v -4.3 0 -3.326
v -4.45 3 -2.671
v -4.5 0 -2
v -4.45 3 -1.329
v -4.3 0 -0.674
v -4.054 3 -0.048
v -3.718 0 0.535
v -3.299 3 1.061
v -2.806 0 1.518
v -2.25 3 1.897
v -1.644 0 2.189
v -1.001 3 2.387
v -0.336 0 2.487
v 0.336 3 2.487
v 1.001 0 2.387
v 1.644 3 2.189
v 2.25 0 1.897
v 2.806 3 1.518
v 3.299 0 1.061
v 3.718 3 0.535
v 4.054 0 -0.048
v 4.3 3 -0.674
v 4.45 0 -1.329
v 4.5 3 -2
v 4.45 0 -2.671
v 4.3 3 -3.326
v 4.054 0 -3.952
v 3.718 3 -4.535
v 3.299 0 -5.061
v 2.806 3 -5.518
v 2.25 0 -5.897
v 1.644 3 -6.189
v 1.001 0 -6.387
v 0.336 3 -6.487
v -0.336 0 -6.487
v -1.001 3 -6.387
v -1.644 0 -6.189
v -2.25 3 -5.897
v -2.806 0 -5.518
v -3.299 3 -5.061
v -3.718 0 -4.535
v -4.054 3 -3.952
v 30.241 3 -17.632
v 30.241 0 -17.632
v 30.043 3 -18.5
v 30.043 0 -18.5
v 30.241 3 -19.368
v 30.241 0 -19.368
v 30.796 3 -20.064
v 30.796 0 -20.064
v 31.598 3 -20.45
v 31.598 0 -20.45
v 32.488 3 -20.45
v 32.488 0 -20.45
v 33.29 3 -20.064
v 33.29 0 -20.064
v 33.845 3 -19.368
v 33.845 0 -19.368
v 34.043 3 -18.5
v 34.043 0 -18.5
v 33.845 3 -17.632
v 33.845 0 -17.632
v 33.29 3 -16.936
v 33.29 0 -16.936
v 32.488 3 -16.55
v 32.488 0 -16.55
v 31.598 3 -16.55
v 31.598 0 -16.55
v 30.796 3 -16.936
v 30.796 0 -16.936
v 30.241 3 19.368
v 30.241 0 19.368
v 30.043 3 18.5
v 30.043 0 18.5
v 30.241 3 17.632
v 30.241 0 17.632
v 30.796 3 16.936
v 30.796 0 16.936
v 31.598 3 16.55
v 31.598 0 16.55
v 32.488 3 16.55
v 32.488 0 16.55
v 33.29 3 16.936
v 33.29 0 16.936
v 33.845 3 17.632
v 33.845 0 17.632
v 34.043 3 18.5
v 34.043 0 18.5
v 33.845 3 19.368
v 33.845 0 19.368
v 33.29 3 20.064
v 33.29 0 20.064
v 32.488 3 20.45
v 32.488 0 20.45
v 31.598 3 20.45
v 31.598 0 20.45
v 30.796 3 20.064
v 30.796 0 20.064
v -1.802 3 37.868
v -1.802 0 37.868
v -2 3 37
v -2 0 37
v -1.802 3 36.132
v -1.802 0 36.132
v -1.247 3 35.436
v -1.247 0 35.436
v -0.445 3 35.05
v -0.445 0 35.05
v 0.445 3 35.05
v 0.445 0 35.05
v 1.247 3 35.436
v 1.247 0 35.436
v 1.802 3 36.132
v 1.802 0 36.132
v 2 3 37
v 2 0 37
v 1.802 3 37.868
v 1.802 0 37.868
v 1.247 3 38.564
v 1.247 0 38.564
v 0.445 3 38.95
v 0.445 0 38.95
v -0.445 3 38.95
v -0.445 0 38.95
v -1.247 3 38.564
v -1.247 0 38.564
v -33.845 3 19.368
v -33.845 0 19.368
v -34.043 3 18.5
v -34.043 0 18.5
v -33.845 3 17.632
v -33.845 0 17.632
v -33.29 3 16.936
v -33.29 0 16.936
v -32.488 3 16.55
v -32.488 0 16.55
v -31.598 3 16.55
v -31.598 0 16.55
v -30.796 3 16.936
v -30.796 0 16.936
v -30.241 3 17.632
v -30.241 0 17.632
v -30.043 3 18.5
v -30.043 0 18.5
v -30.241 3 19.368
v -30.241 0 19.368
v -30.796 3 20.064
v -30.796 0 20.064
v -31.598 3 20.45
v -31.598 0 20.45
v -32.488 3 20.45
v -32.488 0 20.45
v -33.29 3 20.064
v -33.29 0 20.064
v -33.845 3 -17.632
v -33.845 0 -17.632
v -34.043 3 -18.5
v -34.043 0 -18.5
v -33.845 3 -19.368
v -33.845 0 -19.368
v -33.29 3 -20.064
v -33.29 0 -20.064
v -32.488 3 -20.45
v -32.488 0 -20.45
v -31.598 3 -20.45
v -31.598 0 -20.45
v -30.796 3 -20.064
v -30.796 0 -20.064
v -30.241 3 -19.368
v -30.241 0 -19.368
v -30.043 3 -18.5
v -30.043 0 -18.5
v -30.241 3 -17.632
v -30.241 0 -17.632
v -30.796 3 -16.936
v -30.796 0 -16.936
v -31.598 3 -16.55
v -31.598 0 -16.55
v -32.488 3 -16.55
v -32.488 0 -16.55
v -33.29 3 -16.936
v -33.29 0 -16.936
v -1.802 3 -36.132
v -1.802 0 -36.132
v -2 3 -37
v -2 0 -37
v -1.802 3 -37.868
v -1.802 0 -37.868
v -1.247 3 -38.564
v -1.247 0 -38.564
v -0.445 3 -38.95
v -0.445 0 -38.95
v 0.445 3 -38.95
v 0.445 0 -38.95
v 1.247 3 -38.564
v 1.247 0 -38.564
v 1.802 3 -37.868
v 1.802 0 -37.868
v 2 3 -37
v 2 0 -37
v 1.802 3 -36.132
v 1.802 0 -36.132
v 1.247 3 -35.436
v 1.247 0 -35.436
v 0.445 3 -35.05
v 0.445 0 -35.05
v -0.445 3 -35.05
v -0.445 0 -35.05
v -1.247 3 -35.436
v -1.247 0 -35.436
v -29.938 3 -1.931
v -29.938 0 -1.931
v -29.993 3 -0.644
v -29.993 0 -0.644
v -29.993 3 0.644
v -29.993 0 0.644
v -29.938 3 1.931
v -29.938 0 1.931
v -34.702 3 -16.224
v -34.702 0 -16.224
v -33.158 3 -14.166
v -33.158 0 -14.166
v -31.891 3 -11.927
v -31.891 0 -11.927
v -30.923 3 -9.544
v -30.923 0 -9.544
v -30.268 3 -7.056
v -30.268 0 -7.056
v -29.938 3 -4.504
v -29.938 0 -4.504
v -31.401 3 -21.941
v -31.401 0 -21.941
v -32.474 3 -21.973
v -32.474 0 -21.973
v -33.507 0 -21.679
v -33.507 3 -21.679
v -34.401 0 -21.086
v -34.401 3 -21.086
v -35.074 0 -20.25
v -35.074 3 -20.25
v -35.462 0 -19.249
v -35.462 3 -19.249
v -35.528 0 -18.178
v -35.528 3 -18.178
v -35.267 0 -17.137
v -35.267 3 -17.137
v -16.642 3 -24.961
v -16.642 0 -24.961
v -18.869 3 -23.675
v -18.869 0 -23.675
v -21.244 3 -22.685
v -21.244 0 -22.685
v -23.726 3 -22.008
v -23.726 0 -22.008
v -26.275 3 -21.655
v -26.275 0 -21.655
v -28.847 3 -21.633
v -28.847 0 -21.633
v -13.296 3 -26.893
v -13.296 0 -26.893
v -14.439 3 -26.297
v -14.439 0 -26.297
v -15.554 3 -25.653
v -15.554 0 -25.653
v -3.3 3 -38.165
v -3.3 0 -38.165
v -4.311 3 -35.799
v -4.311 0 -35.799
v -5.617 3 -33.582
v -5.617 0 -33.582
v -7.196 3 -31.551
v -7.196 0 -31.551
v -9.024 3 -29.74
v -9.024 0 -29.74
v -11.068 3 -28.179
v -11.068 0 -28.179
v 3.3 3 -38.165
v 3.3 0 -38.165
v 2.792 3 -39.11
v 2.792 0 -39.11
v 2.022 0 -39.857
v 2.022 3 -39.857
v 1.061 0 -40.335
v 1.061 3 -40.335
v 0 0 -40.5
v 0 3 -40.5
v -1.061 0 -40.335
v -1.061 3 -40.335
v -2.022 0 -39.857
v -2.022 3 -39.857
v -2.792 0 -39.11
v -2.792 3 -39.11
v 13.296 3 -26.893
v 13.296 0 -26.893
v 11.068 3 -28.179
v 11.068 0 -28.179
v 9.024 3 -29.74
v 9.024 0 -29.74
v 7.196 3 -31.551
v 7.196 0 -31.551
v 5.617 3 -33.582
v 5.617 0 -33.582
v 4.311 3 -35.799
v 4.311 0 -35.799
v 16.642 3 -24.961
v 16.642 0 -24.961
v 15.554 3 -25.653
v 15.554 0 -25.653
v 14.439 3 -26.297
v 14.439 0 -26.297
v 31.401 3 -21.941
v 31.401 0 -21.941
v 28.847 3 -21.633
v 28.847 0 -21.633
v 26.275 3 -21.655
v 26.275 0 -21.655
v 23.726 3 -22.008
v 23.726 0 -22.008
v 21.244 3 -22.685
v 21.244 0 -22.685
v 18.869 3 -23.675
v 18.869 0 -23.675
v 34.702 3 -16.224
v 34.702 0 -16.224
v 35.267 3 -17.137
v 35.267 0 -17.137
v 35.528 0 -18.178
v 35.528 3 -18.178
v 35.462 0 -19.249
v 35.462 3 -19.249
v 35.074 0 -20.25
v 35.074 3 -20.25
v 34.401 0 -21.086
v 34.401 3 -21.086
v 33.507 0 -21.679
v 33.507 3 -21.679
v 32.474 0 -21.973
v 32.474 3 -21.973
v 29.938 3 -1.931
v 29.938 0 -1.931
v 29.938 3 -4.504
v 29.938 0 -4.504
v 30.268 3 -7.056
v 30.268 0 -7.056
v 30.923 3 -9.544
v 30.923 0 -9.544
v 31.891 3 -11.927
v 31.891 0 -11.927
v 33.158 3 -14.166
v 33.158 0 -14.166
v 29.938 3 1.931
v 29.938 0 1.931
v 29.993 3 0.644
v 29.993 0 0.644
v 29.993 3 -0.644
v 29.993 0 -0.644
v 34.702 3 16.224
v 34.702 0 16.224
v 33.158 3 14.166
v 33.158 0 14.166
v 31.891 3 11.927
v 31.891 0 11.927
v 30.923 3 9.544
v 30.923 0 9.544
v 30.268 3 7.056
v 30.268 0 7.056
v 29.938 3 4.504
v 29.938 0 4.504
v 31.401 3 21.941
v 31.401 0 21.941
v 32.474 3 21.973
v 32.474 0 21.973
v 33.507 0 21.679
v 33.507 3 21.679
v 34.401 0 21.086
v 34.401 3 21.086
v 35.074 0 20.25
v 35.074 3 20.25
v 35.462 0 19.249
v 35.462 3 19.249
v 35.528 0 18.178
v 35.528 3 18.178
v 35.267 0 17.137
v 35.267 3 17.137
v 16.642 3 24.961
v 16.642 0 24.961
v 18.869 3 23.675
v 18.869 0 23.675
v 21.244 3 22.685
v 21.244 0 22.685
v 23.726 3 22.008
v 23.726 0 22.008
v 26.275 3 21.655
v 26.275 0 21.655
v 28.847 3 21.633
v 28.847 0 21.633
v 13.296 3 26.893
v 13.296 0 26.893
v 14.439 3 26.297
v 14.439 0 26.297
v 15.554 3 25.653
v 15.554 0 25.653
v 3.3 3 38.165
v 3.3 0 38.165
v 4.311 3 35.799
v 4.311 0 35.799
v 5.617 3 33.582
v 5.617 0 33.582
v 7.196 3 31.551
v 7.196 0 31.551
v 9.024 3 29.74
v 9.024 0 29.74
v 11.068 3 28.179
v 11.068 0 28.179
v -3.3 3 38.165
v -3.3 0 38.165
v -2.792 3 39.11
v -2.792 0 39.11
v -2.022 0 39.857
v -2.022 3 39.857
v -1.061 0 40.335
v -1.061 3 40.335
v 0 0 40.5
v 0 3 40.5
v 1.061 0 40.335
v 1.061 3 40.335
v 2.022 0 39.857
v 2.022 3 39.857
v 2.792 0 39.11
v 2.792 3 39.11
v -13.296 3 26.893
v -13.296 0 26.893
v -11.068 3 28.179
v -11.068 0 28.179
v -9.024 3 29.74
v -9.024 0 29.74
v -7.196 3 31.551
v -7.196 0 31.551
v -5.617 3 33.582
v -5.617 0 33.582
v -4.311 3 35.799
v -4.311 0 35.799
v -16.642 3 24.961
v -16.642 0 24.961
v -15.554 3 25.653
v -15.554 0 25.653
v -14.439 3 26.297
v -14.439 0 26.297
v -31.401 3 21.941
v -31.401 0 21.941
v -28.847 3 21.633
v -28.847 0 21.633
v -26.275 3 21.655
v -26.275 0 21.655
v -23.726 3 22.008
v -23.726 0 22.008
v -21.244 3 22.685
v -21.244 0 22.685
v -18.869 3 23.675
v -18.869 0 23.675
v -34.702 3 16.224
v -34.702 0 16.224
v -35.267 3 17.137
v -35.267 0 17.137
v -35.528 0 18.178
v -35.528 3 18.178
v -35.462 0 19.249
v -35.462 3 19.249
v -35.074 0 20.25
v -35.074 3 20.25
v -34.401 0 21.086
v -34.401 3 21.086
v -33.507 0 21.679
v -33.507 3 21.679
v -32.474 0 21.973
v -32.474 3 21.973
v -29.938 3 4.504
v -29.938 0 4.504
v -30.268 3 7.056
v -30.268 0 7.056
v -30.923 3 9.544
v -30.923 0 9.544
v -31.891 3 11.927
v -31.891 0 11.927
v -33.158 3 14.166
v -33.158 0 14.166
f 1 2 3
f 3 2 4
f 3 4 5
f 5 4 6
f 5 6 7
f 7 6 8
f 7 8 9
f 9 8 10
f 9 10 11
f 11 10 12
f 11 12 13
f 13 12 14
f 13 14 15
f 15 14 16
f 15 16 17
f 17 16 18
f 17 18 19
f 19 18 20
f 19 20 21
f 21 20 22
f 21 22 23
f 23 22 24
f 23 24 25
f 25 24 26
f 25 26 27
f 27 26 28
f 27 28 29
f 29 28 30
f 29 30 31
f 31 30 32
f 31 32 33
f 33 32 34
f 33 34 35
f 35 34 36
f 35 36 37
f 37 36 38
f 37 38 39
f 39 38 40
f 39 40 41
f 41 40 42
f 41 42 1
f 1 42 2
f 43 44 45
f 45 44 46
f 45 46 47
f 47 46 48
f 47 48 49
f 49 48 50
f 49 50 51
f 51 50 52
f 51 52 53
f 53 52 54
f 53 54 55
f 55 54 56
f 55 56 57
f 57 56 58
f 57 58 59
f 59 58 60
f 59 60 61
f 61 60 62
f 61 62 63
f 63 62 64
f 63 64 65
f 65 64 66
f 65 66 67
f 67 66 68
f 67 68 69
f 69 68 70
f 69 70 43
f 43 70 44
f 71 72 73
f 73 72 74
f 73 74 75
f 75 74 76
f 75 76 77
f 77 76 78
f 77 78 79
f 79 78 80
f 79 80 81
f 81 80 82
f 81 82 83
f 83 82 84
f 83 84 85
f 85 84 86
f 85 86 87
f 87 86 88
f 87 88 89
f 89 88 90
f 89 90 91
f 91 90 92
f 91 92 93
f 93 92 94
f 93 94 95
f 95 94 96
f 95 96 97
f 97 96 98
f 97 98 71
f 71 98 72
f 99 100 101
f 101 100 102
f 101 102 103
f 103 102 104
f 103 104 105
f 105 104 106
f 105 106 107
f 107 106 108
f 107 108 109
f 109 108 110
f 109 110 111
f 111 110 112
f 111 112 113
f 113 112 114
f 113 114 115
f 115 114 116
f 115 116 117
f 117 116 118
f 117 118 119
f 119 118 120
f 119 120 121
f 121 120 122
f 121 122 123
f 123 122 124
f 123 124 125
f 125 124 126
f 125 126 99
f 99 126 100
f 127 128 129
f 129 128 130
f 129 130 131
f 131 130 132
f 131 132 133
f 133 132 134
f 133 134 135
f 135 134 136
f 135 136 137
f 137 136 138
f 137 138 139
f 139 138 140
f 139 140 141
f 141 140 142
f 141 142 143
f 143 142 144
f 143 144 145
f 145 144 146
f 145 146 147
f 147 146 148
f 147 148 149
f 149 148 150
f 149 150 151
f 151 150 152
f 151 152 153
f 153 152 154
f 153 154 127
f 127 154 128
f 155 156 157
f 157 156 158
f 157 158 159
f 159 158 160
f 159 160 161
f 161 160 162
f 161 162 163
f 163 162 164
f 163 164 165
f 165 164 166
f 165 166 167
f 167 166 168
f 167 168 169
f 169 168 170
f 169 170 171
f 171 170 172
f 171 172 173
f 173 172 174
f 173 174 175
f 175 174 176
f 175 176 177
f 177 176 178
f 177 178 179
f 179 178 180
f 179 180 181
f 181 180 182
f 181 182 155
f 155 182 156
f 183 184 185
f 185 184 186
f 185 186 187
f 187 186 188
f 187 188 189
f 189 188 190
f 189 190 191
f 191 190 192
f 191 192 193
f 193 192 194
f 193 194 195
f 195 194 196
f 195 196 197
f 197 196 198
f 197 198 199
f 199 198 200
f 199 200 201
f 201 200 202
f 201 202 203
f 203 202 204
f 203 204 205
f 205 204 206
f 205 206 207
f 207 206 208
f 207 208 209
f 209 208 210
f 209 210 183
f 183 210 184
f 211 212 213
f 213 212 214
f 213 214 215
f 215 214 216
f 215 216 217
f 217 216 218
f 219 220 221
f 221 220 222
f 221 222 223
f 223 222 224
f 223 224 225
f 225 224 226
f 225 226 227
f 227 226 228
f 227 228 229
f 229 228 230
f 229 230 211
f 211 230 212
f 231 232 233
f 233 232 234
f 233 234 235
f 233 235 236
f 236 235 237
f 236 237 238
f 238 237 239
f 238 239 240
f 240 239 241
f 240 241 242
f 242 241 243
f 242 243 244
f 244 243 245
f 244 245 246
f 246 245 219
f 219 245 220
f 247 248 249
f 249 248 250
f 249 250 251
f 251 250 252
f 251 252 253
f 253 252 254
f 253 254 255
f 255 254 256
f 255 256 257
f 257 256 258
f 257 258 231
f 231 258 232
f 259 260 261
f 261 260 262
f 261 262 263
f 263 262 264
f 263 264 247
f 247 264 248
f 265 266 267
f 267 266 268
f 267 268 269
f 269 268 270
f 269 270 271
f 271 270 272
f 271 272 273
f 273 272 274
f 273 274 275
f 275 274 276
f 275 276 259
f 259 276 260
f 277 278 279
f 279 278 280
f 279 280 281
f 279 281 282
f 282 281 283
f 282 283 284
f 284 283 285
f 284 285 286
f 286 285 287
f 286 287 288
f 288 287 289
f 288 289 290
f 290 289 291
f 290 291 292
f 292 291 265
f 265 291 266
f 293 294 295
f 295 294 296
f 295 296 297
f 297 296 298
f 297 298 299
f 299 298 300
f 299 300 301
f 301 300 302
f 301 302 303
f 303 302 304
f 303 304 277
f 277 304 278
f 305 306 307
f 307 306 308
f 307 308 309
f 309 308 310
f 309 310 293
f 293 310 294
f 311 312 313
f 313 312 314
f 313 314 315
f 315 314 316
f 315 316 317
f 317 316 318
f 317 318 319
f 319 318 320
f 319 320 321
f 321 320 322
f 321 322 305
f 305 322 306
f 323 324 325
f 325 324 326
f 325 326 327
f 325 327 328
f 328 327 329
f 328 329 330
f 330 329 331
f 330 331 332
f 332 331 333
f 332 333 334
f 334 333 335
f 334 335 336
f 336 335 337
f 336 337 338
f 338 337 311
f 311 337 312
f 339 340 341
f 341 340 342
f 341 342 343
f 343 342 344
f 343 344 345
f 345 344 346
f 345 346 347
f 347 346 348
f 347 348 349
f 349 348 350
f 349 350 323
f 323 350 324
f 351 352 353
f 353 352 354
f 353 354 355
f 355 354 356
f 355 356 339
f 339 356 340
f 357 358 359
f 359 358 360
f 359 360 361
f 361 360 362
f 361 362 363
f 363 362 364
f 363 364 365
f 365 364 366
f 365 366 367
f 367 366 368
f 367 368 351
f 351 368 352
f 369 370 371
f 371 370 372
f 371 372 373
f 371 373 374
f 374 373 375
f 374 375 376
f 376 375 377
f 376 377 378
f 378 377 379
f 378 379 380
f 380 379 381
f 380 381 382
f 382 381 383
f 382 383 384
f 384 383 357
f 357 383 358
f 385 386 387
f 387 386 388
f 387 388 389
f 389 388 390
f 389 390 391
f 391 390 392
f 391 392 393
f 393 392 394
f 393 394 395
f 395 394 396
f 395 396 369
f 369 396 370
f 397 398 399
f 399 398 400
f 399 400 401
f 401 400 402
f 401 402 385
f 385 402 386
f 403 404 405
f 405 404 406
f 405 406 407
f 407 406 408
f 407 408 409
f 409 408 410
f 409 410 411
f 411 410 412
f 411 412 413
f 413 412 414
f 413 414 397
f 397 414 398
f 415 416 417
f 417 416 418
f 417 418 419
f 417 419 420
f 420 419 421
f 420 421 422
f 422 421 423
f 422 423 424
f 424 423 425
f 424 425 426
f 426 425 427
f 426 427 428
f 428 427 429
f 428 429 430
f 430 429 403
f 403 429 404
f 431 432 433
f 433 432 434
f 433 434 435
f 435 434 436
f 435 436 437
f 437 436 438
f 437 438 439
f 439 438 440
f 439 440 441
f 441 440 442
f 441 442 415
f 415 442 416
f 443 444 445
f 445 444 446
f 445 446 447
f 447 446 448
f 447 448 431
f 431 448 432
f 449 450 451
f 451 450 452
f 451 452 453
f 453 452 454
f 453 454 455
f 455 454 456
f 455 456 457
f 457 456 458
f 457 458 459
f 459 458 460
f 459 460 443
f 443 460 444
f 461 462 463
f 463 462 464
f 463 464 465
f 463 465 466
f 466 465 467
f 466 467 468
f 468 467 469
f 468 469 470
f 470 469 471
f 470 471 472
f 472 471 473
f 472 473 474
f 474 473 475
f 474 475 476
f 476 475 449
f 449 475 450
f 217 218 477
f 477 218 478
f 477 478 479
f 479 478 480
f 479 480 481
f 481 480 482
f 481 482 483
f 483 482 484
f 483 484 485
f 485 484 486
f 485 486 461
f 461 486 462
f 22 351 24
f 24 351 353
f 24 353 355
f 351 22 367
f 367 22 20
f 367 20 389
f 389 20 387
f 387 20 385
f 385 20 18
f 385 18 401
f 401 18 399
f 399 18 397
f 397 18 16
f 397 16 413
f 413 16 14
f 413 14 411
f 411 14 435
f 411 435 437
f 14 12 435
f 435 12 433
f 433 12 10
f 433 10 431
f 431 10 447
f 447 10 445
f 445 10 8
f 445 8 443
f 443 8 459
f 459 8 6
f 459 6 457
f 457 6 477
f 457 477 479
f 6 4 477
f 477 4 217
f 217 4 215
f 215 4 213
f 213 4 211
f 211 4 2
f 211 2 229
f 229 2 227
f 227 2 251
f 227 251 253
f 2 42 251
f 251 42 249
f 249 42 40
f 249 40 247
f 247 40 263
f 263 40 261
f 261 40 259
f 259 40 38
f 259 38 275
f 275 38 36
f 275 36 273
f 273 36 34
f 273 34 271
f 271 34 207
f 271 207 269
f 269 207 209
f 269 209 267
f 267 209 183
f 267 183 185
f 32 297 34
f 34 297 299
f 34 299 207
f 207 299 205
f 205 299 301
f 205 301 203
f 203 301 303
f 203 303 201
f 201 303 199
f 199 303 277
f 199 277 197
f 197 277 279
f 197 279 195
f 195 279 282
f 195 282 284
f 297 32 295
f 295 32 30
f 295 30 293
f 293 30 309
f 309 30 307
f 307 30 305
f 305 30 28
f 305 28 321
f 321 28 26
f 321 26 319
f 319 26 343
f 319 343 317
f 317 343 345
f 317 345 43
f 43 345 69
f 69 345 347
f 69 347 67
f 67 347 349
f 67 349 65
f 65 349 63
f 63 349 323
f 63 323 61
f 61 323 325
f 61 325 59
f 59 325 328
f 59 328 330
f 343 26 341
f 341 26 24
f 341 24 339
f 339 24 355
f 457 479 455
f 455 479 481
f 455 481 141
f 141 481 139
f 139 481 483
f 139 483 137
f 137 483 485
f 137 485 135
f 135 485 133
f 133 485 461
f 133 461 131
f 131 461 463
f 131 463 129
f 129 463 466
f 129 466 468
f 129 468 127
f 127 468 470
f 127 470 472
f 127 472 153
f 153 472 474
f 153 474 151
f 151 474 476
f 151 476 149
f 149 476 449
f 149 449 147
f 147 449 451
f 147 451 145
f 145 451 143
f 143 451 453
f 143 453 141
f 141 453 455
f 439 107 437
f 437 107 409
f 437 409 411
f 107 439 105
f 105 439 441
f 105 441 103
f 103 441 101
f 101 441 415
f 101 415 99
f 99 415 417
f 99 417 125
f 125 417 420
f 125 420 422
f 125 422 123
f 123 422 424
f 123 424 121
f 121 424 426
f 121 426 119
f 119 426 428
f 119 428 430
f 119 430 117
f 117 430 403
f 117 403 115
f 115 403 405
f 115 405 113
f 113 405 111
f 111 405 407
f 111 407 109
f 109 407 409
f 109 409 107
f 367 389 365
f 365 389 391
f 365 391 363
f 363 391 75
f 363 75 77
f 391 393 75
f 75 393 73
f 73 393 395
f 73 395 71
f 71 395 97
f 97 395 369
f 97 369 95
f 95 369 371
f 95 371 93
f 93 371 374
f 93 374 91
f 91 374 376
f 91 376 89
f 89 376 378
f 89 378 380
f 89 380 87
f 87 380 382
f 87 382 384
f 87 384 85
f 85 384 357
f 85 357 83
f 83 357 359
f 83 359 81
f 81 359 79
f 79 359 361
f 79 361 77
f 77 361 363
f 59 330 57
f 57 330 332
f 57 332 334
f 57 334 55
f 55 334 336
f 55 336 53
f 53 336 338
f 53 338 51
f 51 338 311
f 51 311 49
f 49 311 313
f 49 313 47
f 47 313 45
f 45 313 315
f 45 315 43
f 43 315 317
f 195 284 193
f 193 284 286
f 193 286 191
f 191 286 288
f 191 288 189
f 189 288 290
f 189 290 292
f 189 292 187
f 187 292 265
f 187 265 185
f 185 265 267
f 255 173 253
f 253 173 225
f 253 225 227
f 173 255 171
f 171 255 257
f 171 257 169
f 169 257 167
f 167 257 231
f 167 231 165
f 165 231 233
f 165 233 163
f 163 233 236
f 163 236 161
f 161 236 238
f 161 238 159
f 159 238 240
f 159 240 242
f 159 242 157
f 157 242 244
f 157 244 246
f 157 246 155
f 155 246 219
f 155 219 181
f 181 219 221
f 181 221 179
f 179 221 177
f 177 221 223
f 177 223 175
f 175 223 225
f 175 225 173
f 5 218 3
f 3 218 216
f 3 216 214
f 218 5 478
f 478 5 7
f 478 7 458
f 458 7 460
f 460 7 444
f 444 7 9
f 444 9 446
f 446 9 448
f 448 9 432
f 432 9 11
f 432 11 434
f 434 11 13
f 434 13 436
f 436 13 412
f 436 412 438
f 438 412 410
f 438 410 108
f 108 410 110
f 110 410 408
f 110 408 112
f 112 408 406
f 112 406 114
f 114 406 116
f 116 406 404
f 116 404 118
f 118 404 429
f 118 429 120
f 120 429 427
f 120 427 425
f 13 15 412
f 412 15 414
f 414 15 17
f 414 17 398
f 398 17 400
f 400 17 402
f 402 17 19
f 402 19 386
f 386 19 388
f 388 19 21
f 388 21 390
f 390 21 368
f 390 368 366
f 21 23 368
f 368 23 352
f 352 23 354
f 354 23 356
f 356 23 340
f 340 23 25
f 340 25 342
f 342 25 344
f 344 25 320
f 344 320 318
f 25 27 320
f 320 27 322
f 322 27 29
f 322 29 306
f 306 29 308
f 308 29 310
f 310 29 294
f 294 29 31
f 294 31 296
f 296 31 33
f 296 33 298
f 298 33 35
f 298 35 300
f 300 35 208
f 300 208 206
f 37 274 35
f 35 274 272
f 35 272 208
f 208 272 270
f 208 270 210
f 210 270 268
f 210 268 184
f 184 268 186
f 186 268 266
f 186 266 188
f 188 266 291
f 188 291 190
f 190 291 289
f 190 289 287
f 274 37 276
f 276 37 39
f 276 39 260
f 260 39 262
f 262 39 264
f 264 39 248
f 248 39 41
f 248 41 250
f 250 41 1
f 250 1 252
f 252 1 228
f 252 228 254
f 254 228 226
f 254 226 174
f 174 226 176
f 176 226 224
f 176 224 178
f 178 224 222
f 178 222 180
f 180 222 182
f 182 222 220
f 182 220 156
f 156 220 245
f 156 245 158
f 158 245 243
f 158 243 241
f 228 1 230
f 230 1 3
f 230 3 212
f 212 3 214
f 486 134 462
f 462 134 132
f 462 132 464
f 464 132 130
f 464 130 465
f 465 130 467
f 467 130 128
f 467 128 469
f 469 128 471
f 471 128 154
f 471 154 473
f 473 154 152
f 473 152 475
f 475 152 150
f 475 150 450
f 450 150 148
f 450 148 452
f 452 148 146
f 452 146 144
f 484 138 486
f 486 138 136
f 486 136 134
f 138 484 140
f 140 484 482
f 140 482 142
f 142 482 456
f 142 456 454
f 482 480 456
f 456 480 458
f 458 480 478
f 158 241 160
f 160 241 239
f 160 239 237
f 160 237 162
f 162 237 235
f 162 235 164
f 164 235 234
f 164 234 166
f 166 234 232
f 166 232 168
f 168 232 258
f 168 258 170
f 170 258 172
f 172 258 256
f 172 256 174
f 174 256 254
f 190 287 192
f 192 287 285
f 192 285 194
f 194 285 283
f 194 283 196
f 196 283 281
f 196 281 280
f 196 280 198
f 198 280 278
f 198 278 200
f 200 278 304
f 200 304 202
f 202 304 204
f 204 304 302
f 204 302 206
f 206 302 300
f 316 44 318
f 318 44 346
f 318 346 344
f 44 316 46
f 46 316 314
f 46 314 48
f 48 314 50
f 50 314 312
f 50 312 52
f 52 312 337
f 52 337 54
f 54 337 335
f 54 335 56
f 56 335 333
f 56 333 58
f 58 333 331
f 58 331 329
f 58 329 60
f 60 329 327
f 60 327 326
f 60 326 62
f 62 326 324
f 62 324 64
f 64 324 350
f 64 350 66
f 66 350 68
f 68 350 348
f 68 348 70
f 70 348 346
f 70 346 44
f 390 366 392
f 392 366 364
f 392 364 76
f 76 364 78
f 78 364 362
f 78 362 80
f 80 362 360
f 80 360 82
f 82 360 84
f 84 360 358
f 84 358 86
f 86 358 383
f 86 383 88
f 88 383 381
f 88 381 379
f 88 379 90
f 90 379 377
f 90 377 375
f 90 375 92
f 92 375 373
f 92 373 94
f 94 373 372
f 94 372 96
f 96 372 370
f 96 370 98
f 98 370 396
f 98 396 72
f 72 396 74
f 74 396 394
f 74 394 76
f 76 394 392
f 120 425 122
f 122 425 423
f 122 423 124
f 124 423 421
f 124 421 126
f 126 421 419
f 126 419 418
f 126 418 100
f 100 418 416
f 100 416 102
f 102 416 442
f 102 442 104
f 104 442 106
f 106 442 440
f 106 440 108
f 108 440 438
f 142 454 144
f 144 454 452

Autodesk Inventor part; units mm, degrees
ref_plane "XZ Plane" through (0, 0, 0) normal (0, 1, 0) x (-1, 0, 0)
sketch "Sketch1" plane through (0, 0, 0) normal (0, 1, 0) x (-1, 0, 0)
  circle A0 centre (0, 0) radius 30
  circle A1 centre (0, 0) radius 27.5
  circle A2 centre (0, -37) radius 3.5
  arc A3 (13.2962, -26.8926) -> (3.3005, -38.1648) centre (22.1604, -44.8209) ccw
  line L0 (0, -39.6745) -> (0, -15.9391) construction
  arc A4 (-3.3005, -38.1648) -> (-13.2962, -26.8926) centre (-22.1604, -44.8209) ccw
  line L1 (47.8103, 0) -> (-62.0389, 0) construction
  circle A5 centre (0, -37) radius 2
  circle A6 centre (32.0429, -18.5) radius 3.5
  circle A7 centre (32.0429, -18.5) radius 2
  arc A8 (31.4015, -21.9407) -> (16.6415, -24.9612) centre (27.7359, -41.6019) ccw
  arc A9 (29.9378, -1.9314) -> (34.7019, -16.2241) centre (49.8963, -3.219) ccw
  circle A10 centre (32.0429, 18.5) radius 3.5
  circle A11 centre (32.0429, 18.5) radius 2
  arc A12 (34.7019, 16.2241) -> (29.9378, 1.9314) centre (49.8963, 3.219) ccw
  arc A13 (16.6415, 24.9612) -> (31.4015, 21.9407) centre (27.7359, 41.6019) ccw
  circle A14 centre (0, 37) radius 3.5
  circle A15 centre (0, 37) radius 2
  arc A16 (3.3005, 38.1648) -> (13.2962, 26.8926) centre (22.1604, 44.8209) ccw
  arc A17 (-13.2962, 26.8926) -> (-3.3005, 38.1648) centre (-22.1604, 44.8209) ccw
  circle A18 centre (-32.0429, 18.5) radius 3.5
  circle A19 centre (-32.0429, 18.5) radius 2
  arc A20 (-31.4015, 21.9407) -> (-16.6415, 24.9612) centre (-27.7359, 41.6019) ccw
  arc A21 (-29.9378, 1.9314) -> (-34.7019, 16.2241) centre (-49.8963, 3.219) ccw
  circle A22 centre (-32.0429, -18.5) radius 3.5
  circle A23 centre (-32.0429, -18.5) radius 2
  arc A24 (-34.7019, -16.2241) -> (-29.9378, -1.9314) centre (-49.8963, -3.219) ccw
  arc A25 (-16.6415, -24.9612) -> (-31.4015, -21.9407) centre (-27.7359, -41.6019) ccw
  point P0 (29.9378, 1.9314)
  point P1 (34.7019, 16.2241)
  point P2 (16.6415, 24.9612)
  point P3 (13.2962, 26.8926)
  point P4 (3.3005, 38.1648)
  point P5 (-13.2962, 26.8926)
  point P6 (-29.9378, 1.9314)
  point P7 (-29.9378, -1.9314)
  point P8 (-16.6415, -24.9612)
  point P9 (-13.2962, -26.8926)
  point P10 (-3.3005, -38.1648)
  point P11 (16.6415, -24.9612)
  point P12 (31.4015, -21.9407)
  point P13 (29.9378, -1.9314)
  dimension "d16" = 60
  dimension "d18" = 7
  dimension "d17" = 55
  dimension "d19" = 37
  dimension "d21" = 20
  dimension "d22" = 4
  dimension "d25" = 360
extrude "Extrusion5" add sketch "Sketch1" along normal blind 3
extrude "Extrusion6" add sketch "Sketch1" along normal blind 3 contours A1
sketch "Sketch10" plane through (0, 3, 0) normal (0, 1, 0) x (1, 0, 0)
  circle A0 centre (0, 2) radius 4.5
  circle A1 centre (0, 2) radius 22.5
  point P0 (0, 0)
  dimension "d58" = 9
  dimension "d59" = 45
  dimension "d60" = 2
extrude "Extrusion12" cut sketch "Sketch10" against normal blind 20.25 contours A0
properties part number "carcaza motor"
